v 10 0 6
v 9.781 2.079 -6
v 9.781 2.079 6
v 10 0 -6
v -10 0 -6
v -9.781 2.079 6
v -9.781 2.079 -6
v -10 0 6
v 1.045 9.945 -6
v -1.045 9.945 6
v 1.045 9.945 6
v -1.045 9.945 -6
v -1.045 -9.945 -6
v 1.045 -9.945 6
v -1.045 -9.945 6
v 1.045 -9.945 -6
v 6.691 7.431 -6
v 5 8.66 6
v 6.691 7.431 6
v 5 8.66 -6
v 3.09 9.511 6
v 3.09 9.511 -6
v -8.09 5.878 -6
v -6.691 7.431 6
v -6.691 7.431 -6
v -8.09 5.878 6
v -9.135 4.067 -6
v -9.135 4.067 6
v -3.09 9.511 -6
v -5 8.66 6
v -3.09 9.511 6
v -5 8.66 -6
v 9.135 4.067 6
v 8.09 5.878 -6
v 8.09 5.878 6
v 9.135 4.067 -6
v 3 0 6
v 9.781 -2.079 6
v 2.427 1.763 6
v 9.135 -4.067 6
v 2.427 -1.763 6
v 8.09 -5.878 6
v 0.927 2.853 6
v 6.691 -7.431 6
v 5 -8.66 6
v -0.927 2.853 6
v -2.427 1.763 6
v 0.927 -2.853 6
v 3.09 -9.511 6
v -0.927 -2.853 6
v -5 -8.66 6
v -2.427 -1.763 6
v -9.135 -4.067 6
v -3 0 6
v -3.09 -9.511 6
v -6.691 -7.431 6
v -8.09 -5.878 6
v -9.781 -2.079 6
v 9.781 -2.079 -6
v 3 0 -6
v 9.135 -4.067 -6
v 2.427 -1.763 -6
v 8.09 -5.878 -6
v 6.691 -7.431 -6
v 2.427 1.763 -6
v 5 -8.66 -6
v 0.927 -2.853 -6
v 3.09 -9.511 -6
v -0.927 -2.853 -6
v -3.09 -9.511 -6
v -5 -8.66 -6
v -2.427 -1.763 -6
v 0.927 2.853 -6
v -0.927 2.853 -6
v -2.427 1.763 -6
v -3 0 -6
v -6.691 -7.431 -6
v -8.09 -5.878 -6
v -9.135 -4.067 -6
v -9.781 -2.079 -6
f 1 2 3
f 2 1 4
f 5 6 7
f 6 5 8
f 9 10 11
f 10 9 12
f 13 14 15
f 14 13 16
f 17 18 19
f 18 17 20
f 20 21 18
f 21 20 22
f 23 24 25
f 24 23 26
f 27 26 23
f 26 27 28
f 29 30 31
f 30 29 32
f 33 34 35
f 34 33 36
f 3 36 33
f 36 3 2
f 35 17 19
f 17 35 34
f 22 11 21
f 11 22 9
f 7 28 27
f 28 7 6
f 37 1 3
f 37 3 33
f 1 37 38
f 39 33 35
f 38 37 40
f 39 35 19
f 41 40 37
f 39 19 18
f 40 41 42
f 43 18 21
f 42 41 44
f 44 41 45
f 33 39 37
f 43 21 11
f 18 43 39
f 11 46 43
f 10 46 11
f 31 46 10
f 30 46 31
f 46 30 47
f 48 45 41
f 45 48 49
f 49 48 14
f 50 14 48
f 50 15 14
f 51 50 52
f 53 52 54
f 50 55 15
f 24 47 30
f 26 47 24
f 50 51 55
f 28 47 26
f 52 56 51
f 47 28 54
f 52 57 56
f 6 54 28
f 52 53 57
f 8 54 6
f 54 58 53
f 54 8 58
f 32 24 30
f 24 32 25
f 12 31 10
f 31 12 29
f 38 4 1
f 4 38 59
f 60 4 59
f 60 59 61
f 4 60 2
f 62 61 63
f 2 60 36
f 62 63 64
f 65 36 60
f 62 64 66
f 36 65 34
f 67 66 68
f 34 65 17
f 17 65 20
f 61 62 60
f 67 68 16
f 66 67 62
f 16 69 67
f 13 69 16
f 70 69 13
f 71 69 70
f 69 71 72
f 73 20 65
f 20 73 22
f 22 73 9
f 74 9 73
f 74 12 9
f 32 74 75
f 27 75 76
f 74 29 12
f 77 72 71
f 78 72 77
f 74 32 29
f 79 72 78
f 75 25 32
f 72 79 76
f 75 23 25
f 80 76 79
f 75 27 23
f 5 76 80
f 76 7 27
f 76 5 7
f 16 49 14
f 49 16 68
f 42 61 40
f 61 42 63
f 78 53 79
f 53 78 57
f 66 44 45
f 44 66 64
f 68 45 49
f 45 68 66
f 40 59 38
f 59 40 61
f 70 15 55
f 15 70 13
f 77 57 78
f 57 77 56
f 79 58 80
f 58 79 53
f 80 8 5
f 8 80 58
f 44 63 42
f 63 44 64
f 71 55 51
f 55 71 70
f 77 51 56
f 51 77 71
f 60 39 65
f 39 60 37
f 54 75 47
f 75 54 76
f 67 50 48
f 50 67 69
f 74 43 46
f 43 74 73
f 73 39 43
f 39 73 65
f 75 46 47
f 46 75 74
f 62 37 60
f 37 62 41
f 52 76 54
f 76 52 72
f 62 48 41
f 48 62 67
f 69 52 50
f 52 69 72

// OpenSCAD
difference() {
    cylinder(h = 12, d = 20, center = true);
    translate([0, 0, 0])
        cylinder(h = 14, d = 6, center = true);  // slightly taller to ensure hole cuts through all layers
}
